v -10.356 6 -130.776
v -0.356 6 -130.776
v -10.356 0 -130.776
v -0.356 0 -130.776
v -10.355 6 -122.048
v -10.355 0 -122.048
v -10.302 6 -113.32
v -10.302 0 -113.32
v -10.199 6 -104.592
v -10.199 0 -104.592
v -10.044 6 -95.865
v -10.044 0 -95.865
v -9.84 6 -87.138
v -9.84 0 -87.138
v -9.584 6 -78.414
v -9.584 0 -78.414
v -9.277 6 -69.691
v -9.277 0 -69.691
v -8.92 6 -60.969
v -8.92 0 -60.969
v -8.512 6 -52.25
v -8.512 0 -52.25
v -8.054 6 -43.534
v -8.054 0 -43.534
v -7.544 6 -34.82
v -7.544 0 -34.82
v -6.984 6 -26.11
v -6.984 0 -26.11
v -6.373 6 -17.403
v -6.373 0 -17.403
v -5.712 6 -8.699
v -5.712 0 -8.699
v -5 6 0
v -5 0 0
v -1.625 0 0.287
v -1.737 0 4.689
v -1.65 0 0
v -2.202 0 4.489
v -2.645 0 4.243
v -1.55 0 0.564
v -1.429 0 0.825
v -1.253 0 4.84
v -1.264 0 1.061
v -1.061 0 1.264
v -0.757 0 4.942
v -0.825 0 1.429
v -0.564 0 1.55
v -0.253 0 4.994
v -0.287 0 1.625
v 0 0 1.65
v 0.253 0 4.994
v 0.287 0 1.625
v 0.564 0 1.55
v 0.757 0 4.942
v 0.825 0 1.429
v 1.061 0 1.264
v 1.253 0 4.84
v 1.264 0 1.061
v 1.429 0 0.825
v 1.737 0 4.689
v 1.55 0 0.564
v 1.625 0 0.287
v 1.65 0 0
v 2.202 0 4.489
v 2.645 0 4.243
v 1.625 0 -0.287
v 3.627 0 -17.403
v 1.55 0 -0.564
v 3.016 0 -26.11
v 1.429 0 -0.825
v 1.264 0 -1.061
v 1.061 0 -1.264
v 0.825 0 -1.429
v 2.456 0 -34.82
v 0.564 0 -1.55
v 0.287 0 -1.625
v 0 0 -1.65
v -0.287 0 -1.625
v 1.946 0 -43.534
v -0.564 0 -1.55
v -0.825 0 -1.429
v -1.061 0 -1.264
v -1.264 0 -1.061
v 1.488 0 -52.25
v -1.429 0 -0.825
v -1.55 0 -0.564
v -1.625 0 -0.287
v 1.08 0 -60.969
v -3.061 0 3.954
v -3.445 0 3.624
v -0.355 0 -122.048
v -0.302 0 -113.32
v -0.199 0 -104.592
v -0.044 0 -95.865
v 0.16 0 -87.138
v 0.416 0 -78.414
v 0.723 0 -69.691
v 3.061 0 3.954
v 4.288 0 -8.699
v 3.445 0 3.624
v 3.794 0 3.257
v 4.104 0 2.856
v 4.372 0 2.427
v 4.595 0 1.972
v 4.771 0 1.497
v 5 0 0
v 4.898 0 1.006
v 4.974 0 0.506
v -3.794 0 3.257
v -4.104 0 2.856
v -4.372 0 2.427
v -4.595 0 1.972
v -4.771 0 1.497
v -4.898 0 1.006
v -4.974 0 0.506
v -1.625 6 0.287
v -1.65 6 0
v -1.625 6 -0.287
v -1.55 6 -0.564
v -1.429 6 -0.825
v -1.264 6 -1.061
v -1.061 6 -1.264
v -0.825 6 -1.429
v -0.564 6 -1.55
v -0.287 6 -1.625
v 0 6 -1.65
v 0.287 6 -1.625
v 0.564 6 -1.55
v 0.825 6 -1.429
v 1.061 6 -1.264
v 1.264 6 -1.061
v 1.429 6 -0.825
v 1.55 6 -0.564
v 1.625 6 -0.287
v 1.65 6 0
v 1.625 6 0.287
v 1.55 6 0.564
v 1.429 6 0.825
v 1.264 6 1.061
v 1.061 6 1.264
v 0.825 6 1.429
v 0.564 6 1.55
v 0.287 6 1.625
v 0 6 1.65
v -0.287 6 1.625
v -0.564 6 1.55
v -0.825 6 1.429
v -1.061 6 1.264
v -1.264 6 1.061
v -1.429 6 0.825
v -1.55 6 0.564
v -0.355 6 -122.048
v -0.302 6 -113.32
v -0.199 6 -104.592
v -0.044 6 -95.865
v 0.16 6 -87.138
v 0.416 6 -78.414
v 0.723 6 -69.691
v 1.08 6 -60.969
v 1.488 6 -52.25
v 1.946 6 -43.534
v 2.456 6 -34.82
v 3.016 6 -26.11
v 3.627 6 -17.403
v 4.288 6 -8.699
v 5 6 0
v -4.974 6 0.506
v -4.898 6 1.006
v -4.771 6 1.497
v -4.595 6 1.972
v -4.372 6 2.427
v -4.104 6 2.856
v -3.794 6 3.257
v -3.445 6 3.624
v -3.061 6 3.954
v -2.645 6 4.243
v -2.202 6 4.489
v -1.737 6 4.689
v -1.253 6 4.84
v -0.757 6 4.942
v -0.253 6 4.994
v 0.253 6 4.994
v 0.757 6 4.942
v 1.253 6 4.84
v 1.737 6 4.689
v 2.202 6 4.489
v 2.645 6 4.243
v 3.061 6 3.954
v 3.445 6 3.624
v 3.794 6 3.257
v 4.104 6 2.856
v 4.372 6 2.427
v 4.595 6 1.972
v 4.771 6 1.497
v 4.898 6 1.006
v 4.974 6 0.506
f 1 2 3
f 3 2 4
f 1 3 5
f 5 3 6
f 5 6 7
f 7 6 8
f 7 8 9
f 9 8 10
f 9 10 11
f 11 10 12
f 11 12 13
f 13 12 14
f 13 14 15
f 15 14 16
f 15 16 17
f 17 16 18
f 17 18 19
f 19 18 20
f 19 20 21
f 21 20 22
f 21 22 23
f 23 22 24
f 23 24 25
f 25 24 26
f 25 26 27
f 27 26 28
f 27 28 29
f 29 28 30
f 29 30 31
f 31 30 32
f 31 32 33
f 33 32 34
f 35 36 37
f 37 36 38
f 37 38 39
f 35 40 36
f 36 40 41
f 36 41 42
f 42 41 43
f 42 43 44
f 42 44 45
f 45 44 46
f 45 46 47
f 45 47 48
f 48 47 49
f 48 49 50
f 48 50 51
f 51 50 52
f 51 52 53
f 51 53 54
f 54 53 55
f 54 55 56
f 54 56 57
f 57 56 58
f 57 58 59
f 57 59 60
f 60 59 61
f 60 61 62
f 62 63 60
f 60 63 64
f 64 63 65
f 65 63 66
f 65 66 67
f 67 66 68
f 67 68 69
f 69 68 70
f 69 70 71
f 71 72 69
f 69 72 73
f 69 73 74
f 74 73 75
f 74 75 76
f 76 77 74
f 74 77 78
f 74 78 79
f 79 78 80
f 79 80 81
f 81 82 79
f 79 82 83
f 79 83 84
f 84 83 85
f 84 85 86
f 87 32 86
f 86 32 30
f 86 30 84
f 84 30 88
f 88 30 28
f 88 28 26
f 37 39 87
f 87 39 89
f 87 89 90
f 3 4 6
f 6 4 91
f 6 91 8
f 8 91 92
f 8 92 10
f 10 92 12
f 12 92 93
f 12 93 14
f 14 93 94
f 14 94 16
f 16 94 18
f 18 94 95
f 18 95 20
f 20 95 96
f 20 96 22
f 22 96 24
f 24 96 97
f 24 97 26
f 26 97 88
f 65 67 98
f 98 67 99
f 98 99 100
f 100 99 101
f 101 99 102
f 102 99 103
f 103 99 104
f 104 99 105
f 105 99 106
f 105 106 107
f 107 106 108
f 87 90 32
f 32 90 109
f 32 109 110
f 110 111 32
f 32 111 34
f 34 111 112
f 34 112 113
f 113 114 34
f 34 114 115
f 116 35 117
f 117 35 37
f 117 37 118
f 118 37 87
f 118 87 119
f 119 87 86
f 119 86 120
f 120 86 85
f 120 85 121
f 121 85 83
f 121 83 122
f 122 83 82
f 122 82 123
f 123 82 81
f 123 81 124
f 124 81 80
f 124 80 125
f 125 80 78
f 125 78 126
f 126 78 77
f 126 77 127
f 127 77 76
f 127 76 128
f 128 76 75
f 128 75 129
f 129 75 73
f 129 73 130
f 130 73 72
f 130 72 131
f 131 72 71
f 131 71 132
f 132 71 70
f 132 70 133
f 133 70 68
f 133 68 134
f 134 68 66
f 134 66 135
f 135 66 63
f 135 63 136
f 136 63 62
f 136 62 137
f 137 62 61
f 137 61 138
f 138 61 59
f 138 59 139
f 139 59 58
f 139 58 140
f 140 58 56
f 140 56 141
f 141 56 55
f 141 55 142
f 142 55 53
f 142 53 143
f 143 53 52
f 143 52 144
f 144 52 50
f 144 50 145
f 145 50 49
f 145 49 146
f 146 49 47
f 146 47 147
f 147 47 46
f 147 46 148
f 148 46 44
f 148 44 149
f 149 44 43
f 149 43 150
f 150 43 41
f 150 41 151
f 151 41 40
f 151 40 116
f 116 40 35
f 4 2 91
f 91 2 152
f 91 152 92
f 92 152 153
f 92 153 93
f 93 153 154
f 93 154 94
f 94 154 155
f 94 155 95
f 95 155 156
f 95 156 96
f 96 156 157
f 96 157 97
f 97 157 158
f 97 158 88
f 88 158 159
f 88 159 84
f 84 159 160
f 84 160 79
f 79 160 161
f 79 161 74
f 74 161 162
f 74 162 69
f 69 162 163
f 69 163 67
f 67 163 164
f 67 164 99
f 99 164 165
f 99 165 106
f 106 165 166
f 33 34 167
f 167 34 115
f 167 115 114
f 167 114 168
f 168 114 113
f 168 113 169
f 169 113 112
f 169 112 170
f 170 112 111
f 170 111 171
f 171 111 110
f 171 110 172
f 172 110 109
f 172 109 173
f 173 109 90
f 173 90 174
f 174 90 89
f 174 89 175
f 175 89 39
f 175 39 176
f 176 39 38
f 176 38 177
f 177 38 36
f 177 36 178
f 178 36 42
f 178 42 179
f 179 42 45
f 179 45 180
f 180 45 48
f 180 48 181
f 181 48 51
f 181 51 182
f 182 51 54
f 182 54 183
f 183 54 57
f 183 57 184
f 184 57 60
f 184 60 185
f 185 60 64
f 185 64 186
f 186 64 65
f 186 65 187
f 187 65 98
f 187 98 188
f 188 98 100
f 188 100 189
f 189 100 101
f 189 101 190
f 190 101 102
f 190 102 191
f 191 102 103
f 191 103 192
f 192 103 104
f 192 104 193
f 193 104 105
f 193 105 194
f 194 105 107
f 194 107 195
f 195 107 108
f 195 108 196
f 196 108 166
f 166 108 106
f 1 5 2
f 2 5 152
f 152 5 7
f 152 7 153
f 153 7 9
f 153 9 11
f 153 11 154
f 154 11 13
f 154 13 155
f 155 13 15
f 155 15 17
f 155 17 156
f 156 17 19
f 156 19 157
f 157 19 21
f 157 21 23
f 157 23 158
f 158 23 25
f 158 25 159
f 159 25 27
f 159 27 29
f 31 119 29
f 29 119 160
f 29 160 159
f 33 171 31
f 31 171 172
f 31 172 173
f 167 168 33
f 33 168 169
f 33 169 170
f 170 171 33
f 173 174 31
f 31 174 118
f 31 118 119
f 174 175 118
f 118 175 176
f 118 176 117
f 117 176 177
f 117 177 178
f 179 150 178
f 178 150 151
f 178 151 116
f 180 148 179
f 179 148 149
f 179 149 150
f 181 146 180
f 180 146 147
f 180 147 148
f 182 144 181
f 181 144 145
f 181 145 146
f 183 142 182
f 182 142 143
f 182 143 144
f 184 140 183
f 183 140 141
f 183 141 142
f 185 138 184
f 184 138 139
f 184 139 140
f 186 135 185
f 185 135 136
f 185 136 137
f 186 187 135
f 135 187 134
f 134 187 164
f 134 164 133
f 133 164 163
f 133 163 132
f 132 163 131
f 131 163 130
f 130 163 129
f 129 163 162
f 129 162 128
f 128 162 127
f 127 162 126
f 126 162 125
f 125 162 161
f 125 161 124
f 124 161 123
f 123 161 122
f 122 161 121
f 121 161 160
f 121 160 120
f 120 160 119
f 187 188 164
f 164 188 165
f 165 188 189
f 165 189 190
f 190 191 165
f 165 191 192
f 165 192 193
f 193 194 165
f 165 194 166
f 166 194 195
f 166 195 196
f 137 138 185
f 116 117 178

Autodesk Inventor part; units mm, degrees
ref_plane "YZ Plane" through (0, 0, 0) normal (1, 0, 0) x (0, 1, 0)
ref_plane "XZ Plane" through (0, 0, 0) normal (0, 1, 0) x (-1, 0, 0)
ref_plane "XY Plane" through (0, 0, 0) normal (0, 0, 1) x (1, 0, 0)
sketch "Sketch1" plane through (0, 0, 0) normal (0, 1, 0) x (-1, 0, 0)
  line L0 (0, 0) -> (0, -253.429) construction
  line L1 (5, 0) -> (5, -253.429)
  line L2 (-5, -253.429) -> (-5, 0)
  arc A0 (5, 0) -> (-5, 0) centre (0, 0) ccw
  arc A1 (-5, -253.429) -> (5, -253.429) centre (0, -253.429) ccw
  circle A2 centre (0, 0) radius 1.65
  circle A3 centre (0, -253.429) radius 1.65
  arc A4 (5, -253.429) -> (5, 0) centre (-1489.6382, -126.7145) ccw
  arc A5 (-5, -253.429) -> (-5, 0) centre (-1499.6382, -126.7145) ccw
  circle A6 centre (5.3131, -141.429) radius 1.65
  point P0 (0, -126.7145)
  dimension "d0" = 3.3
  dimension "d1" = 3.3
  dimension "d2" = 10
  dimension "d3" = 253.429
  dimension "d16" = 1500
  dimension "d17" = 1500
  dimension "d18" = 3.3
  dimension "d19" = 112
extrude "Extrusion1" add sketch "Sketch1" along normal blind 6 contours A4 L1 A6 | L1 A6 A1 A5 A0
sketch "Sketch2" plane through (0, 6, 0) normal (0, 1, 0) x (1, 0, 0)
  line L0 (-23.0122, 130.7764) -> (18.8584, 130.7764)
  line L1 (18.8584, 130.7764) -> (18.8584, -10.1345)
  line L2 (18.8584, -10.1345) -> (-23.0122, -10.1345)
  line L3 (-23.0122, -10.1345) -> (-23.0122, 130.7764)
  line L4 (-71.0561, 282.155) -> (73.8808, 282.155)
  line L5 (73.8808, 282.155) -> (73.8808, -35.6326)
  line L6 (73.8808, -35.6326) -> (-71.0561, -35.6326)
  line L7 (-71.0561, -35.6326) -> (-71.0561, 282.155)
  point P0 (0, 0)
extrude "Extrusion2" cut sketch "Sketch2" against normal blind 10
properties part number "Part_5_p1"
